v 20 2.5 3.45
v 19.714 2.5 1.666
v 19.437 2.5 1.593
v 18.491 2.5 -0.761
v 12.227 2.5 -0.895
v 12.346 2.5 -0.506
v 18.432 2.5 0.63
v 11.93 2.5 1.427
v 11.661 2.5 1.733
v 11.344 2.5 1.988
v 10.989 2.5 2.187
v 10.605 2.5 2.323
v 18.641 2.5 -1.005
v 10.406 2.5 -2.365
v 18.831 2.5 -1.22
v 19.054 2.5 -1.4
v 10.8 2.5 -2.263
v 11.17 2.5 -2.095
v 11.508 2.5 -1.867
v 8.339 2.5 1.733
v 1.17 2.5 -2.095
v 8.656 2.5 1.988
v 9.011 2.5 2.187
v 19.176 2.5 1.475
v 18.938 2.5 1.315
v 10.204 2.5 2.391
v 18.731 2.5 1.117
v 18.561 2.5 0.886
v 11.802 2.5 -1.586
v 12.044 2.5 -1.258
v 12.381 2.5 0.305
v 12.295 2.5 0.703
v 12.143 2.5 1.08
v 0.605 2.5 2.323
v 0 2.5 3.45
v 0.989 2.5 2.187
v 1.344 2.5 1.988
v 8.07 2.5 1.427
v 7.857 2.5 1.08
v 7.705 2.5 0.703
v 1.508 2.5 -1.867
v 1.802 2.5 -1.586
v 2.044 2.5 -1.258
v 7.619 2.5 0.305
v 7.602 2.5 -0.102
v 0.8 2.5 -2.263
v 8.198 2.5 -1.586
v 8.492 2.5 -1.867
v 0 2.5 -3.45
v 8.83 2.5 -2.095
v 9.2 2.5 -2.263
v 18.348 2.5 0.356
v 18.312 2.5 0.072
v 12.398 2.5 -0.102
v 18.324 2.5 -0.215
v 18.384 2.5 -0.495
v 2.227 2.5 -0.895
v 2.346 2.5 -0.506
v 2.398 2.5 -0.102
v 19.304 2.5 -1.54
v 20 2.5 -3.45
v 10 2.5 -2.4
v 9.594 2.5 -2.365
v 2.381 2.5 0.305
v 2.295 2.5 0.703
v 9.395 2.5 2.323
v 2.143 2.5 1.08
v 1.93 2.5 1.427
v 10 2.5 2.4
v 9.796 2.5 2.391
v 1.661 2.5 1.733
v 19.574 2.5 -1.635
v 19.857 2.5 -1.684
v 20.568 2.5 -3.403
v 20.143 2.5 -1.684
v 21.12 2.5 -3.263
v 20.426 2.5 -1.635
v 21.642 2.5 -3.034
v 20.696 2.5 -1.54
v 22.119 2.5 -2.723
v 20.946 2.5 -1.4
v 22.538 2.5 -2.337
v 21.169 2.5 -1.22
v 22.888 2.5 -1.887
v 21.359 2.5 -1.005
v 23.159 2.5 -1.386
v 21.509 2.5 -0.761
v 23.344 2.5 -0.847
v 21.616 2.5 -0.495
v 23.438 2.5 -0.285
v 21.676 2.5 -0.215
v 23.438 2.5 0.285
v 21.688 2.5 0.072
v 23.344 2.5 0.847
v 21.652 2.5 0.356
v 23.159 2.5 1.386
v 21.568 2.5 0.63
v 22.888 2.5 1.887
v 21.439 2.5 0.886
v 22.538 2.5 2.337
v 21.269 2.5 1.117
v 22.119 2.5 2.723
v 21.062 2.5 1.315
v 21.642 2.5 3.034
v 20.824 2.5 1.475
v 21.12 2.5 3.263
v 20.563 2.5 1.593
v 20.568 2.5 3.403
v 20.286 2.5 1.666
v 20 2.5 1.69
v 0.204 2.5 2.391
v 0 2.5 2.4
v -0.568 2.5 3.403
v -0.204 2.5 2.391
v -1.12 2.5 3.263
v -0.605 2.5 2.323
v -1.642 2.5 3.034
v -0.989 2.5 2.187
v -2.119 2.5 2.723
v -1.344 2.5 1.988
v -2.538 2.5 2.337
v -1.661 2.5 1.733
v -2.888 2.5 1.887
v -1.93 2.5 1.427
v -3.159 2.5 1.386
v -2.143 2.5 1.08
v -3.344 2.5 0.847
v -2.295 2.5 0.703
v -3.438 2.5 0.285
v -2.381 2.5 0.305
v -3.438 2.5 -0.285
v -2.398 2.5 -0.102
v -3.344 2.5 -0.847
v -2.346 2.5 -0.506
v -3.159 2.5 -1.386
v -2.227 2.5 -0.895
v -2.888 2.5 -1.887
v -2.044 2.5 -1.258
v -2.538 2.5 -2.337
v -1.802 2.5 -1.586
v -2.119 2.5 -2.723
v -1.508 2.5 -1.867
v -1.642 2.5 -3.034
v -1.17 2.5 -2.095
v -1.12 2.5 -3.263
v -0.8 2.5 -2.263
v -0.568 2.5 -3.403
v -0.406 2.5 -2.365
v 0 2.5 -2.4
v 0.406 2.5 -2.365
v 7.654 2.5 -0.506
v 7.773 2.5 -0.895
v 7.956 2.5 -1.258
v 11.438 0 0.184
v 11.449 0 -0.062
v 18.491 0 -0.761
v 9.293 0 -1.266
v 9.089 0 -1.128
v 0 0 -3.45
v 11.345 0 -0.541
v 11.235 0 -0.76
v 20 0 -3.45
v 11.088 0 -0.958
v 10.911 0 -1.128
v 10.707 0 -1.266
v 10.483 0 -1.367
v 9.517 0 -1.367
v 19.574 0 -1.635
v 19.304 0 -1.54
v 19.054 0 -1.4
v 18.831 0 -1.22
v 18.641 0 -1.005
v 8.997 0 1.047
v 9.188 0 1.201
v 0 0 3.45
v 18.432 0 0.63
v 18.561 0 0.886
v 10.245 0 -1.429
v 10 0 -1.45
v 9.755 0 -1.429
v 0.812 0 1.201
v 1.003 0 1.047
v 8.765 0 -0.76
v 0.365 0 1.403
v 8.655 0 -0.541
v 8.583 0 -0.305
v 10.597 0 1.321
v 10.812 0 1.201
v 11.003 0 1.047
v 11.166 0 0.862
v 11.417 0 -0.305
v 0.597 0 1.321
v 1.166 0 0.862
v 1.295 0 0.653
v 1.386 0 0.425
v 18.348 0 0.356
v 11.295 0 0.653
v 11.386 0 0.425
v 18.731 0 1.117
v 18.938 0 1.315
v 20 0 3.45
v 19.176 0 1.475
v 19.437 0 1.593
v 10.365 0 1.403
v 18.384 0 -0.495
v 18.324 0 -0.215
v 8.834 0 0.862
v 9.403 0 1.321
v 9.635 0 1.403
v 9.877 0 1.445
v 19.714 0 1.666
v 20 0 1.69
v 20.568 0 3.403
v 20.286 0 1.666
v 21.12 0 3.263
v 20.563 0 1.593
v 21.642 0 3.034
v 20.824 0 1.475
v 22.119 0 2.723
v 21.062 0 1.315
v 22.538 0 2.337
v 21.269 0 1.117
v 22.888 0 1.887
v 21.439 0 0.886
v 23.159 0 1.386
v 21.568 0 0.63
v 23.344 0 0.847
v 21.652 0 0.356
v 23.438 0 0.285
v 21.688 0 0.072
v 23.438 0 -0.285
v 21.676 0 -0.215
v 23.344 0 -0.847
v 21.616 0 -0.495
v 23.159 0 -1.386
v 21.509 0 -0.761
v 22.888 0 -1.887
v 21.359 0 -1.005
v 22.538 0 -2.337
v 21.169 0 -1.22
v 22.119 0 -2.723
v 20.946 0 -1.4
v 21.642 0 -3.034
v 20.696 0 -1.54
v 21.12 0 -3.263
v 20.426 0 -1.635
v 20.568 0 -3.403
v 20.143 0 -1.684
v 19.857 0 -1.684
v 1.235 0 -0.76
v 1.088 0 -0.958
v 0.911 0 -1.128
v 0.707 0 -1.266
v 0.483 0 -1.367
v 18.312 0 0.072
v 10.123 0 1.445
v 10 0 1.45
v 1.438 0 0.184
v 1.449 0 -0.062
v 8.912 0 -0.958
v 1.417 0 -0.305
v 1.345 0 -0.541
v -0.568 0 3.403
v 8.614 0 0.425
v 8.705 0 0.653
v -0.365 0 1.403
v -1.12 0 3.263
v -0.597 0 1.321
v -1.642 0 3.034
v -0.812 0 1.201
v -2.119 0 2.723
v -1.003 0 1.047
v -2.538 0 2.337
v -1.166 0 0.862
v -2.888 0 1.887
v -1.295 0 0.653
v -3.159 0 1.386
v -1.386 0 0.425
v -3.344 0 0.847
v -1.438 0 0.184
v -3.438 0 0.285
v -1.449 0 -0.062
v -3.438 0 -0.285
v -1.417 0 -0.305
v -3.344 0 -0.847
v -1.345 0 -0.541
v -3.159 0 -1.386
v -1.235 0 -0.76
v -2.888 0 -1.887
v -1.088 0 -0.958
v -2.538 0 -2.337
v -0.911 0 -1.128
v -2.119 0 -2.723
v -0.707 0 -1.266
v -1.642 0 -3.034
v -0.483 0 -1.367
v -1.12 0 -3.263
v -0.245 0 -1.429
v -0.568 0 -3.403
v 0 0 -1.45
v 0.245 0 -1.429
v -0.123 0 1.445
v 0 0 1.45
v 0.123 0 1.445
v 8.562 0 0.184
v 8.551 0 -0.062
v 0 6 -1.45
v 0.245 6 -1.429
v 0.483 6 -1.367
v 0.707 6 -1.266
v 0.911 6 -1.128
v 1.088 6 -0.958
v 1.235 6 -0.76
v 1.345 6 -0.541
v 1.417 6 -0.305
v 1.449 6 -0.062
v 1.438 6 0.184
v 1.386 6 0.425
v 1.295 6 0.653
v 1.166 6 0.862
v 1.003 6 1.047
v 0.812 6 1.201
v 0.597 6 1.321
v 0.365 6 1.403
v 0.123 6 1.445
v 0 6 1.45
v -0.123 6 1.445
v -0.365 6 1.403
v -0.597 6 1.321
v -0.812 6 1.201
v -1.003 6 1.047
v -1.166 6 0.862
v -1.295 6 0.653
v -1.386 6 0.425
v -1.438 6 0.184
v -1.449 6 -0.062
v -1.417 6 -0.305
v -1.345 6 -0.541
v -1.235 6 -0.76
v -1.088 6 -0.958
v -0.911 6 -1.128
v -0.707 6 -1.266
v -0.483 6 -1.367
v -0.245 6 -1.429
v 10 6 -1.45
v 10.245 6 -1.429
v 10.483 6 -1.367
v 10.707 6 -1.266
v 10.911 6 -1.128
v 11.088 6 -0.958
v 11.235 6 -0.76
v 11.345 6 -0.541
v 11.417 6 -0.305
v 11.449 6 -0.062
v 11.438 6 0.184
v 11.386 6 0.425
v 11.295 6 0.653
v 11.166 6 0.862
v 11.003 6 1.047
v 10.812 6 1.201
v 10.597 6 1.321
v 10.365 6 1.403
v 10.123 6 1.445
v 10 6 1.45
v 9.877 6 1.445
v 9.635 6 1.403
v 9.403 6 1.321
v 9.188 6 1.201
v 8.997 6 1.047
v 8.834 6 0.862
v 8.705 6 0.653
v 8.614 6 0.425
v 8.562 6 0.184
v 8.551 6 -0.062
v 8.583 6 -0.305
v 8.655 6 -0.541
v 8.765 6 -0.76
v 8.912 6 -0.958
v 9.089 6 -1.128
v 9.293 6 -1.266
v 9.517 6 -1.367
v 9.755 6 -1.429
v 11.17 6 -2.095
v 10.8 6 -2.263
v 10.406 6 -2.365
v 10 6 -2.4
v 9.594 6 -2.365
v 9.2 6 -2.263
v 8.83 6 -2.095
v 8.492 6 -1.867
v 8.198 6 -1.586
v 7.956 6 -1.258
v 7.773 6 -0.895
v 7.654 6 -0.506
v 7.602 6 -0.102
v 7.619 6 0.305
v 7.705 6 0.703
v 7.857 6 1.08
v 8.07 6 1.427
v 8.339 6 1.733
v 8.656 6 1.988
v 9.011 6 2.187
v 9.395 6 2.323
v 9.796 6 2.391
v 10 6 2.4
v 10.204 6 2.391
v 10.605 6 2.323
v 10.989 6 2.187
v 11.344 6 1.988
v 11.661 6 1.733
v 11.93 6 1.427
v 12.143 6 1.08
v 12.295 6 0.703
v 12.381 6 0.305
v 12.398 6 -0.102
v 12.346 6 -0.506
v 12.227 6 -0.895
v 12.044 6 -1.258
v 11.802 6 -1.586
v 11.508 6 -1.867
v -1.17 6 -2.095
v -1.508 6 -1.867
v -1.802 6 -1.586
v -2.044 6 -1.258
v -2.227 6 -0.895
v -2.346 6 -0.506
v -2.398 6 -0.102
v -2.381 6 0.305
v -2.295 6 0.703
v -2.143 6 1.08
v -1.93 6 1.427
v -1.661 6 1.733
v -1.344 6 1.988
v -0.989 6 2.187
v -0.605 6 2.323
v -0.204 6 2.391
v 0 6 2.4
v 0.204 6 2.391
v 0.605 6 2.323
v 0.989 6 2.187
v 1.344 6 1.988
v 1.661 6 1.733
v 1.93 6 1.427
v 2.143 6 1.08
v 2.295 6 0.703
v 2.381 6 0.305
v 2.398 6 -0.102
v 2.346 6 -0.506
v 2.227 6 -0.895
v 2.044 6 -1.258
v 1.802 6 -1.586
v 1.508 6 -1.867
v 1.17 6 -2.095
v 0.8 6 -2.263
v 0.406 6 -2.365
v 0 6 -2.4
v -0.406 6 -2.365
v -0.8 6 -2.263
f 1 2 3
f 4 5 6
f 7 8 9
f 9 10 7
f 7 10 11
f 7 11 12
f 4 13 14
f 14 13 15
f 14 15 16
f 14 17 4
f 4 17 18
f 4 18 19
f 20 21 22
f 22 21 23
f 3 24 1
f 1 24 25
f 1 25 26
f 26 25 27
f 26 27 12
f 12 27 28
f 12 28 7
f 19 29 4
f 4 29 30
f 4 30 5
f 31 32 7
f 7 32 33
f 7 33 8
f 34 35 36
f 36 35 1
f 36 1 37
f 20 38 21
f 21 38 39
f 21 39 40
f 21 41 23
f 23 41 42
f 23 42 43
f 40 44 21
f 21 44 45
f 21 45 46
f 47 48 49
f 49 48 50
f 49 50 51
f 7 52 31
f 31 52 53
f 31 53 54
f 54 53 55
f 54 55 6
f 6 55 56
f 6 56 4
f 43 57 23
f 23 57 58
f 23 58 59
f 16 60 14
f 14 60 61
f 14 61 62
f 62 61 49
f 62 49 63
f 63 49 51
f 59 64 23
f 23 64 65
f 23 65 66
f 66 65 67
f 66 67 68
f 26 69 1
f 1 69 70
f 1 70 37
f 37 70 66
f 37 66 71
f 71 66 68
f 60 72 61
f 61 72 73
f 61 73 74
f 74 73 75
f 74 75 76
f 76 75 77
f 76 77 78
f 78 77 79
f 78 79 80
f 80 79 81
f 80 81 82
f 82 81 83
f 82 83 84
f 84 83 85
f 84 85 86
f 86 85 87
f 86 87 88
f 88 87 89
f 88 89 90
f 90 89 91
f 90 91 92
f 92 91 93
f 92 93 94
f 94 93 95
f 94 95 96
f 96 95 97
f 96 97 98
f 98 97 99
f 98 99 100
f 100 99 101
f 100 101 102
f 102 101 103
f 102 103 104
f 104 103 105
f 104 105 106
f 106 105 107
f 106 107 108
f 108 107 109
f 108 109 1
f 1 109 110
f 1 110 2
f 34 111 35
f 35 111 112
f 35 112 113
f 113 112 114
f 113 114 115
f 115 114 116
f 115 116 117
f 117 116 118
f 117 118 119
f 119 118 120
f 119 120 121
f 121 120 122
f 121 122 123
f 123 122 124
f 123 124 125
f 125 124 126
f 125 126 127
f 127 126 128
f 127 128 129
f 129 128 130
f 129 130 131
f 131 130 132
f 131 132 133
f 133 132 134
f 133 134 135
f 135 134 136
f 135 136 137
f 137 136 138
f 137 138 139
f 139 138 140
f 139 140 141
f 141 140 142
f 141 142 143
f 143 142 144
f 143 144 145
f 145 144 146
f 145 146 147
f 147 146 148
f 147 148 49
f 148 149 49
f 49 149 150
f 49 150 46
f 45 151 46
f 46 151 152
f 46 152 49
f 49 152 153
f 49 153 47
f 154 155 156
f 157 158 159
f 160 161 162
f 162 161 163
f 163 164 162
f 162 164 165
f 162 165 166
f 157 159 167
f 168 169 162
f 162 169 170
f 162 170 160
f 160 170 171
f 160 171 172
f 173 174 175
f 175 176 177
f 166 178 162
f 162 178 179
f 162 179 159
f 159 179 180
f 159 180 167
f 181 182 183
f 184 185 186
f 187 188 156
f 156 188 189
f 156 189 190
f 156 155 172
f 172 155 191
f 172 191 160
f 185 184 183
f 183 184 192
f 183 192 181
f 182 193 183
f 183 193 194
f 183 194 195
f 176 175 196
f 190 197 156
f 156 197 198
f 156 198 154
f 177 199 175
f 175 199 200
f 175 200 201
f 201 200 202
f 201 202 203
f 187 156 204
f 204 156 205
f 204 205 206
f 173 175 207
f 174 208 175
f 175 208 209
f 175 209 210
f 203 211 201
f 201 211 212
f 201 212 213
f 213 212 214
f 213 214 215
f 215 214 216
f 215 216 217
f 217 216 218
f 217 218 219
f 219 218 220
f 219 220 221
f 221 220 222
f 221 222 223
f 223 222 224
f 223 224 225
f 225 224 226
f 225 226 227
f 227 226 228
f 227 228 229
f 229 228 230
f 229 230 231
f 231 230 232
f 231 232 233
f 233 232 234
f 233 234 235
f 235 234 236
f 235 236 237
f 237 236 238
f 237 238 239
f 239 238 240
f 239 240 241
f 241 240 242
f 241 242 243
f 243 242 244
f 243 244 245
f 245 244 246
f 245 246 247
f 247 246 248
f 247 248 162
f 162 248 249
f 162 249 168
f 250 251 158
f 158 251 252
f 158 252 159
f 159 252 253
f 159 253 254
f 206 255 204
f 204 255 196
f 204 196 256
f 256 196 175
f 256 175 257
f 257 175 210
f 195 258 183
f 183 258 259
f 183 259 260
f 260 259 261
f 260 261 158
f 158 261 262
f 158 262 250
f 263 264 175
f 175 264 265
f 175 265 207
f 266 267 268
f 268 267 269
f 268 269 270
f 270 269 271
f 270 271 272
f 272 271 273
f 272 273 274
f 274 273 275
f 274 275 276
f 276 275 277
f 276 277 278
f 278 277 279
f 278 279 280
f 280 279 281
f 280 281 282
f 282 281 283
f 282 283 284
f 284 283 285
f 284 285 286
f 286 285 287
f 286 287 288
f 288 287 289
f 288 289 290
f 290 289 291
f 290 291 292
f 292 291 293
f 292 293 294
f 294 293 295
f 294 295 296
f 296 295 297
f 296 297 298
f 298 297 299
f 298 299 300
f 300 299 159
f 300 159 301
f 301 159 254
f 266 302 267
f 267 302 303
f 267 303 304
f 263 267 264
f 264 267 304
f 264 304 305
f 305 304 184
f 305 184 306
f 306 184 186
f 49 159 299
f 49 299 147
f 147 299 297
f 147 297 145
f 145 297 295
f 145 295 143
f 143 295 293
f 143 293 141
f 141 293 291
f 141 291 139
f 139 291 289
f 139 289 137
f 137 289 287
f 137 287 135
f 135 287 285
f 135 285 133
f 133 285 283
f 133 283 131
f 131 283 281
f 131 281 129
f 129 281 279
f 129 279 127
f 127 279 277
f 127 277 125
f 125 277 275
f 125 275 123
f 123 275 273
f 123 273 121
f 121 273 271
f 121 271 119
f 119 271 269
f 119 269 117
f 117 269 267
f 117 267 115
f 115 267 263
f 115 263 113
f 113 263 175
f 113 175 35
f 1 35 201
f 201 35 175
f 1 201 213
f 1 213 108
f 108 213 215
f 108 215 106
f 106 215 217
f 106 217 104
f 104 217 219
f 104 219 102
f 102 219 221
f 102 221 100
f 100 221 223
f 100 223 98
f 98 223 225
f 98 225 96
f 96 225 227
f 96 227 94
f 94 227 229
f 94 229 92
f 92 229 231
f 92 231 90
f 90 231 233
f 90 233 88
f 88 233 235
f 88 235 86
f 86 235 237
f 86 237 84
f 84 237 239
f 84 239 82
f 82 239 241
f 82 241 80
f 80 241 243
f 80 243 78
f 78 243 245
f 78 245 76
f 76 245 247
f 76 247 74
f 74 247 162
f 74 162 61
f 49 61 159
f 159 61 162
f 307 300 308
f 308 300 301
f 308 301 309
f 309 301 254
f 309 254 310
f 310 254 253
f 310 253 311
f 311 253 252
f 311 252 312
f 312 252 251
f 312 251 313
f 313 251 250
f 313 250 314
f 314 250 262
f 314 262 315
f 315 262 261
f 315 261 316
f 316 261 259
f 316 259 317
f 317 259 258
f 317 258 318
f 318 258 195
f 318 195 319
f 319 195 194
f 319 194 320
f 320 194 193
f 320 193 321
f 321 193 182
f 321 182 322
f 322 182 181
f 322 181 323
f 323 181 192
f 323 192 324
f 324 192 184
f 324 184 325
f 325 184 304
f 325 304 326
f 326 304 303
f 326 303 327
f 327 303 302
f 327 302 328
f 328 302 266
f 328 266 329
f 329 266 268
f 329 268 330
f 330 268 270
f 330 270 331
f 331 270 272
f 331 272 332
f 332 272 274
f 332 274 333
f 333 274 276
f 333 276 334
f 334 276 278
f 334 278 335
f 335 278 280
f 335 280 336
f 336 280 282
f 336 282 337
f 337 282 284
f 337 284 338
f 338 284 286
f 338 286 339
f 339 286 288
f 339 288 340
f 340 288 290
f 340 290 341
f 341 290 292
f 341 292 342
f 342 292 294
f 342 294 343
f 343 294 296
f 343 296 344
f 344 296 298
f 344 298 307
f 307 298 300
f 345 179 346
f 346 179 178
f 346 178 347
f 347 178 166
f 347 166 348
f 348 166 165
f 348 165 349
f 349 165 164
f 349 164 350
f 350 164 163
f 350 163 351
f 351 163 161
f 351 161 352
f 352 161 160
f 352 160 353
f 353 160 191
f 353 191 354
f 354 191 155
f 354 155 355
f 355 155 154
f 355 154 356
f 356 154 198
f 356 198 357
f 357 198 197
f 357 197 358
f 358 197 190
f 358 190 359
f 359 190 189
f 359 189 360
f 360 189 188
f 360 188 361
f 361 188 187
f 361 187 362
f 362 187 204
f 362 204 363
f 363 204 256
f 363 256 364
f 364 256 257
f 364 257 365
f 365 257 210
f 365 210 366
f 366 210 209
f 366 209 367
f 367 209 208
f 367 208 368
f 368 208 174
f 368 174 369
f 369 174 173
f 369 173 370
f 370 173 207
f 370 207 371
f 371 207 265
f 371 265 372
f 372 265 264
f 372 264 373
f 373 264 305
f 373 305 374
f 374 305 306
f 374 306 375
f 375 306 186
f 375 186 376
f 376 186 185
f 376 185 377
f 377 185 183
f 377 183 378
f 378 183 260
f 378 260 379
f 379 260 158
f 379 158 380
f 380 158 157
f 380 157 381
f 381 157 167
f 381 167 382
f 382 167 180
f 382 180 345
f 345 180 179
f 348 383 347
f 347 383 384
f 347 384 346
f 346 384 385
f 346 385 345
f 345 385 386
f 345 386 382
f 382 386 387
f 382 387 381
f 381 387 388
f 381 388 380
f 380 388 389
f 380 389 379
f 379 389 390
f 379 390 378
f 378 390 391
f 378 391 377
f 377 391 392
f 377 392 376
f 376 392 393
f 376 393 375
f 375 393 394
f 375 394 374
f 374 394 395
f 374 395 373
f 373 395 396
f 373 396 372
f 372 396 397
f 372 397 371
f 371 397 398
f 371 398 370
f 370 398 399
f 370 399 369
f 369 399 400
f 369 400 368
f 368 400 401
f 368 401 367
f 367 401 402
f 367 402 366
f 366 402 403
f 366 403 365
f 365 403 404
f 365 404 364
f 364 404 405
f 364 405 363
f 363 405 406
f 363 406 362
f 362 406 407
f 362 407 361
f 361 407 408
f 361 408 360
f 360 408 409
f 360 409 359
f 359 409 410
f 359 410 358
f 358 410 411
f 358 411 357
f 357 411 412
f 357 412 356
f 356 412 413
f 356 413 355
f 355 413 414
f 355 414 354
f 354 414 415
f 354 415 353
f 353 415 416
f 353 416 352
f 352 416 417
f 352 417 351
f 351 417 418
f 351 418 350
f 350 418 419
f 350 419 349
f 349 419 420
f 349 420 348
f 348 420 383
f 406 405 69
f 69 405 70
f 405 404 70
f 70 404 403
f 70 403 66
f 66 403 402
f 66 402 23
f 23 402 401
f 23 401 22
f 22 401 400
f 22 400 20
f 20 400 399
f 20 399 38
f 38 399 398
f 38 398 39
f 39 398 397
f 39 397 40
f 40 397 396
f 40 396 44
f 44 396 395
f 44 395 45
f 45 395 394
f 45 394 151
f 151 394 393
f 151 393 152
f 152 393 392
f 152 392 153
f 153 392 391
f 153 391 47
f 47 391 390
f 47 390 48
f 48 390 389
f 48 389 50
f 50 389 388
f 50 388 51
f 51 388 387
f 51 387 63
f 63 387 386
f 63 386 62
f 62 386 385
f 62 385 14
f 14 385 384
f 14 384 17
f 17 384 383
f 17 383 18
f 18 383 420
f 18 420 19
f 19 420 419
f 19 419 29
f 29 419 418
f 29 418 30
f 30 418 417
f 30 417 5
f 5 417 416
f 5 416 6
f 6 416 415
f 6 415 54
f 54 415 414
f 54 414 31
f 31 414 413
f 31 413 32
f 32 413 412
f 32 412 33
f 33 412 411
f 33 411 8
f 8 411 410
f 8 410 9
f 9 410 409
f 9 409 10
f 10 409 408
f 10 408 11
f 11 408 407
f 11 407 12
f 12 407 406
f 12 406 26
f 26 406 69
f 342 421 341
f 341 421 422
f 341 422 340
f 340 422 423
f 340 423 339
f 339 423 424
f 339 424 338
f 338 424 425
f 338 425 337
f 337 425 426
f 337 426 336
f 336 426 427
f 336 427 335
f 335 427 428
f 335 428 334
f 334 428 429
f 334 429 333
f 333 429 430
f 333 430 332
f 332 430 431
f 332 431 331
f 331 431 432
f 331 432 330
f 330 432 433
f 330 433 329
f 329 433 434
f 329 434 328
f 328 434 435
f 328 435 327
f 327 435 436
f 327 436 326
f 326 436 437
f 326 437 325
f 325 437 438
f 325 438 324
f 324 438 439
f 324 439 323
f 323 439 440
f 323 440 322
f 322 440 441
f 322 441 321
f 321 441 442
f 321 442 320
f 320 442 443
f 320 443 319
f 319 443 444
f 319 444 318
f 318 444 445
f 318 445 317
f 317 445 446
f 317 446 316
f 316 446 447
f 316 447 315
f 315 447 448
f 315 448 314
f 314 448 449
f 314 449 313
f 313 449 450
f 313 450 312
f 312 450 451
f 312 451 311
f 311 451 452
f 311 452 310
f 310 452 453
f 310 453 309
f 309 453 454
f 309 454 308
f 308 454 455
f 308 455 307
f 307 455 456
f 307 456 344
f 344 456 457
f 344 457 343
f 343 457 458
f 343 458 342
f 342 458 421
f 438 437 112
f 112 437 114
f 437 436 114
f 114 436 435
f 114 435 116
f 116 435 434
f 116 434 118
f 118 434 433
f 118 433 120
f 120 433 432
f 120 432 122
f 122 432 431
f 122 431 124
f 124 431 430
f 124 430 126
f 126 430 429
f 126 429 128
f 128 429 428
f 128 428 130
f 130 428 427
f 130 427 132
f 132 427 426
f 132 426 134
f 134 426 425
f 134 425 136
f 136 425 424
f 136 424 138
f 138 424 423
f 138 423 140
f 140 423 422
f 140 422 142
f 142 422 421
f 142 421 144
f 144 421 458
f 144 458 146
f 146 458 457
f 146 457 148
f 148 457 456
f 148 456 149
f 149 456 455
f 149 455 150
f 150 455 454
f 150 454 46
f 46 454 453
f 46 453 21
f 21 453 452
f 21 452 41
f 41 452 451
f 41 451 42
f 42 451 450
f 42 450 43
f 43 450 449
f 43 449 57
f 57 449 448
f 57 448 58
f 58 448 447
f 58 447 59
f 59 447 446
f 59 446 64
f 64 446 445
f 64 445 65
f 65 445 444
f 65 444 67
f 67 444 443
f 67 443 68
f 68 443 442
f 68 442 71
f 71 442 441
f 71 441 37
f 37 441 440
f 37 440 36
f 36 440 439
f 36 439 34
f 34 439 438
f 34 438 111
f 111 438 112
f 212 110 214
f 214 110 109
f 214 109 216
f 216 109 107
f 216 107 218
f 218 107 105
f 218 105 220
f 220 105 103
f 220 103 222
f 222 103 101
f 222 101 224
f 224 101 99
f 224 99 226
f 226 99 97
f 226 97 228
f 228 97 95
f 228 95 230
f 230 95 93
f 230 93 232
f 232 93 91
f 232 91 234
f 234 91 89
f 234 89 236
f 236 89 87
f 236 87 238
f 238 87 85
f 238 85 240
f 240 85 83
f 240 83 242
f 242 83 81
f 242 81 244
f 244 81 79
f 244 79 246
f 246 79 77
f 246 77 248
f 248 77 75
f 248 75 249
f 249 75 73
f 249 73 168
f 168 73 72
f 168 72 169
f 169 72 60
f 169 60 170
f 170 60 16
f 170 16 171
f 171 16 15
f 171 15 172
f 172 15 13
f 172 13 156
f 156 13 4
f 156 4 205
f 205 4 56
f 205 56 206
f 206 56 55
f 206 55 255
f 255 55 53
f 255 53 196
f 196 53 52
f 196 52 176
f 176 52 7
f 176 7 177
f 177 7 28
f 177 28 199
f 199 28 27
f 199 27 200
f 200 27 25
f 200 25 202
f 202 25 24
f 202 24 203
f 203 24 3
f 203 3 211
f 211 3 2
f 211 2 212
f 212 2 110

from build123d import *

# Parameters (mm, degrees)
CROQUIS2_R              = 1.45
SALIENTE_EXTRUIR1_DEPTH = 2.5
CROQUIS3_R              = 2.4
CROQUIS3_R_2            = 1.45
SALIENTE_EXTRUIR2_DEPTH = 3.5
CROQUIS4_R              = 1.69
CORTAR_EXTRUIR1_DEPTH   = 24.959444902


with BuildPart() as part:
    # Croquis2 → Saliente-Extruir1 (new body)
    with BuildSketch(Plane(origin=(0, 0, 0), x_dir=(1, 0, 0), z_dir=(0, 1, 0))):
        with BuildLine():
            Line((0, 3.45), (20, 3.45))
            ThreePointArc((20, 3.45), (23.45, 0), (20, -3.45))
            Line((20, -3.45), (0, -3.45))
            ThreePointArc((0, -3.45), (-3.45, 0), (0, 3.45))
        make_face()
        with Locations(Location((0, 0, 0), (0, 0, 270))):
            Circle(CROQUIS2_R, mode=Mode.SUBTRACT)
        with Locations(Location((10, 0, 0), (0, 0, 270))):
            Circle(CROQUIS2_R, mode=Mode.SUBTRACT)
    extrude(amount=SALIENTE_EXTRUIR1_DEPTH)

    # Croquis3 → Saliente-Extruir2 (add)
    # profile 1 of 2: a face of its own
    with BuildSketch(Plane(origin=(0, 2.5, 0), x_dir=(1, 0, 0), z_dir=(0, 1, 0))):
        with Locations(Location((0, 0, 0), (0, 0, 270))):
            Circle(CROQUIS3_R)
        with Locations(Location((0, 0, 0), (0, 0, 270))):
            Circle(CROQUIS3_R_2, mode=Mode.SUBTRACT)
    # profile 2 of 2: a face of its own
    with BuildSketch(Plane(origin=(0, 2.5, 0), x_dir=(1, 0, 0), z_dir=(0, 1, 0))):
        with Locations(Location((10, 0, 0), (0, 0, 270))):
            Circle(CROQUIS3_R)
        with Locations(Location((10, 0, 0), (0, 0, 270))):
            Circle(CROQUIS3_R_2, mode=Mode.SUBTRACT)
    extrude(amount=SALIENTE_EXTRUIR2_DEPTH)

    # Croquis4 → Cortar-Extruir1 (cut, through all)
    with BuildSketch(Plane(origin=(0, 2.5, 0), x_dir=(1, 0, 0), z_dir=(0, 1, 0))):
        with Locations(Location((20, 0, 0), (0, 0, 270))):
            Circle(CROQUIS4_R)
    extrude(amount=-CORTAR_EXTRUIR1_DEPTH, mode=Mode.SUBTRACT)


solid = part.part
